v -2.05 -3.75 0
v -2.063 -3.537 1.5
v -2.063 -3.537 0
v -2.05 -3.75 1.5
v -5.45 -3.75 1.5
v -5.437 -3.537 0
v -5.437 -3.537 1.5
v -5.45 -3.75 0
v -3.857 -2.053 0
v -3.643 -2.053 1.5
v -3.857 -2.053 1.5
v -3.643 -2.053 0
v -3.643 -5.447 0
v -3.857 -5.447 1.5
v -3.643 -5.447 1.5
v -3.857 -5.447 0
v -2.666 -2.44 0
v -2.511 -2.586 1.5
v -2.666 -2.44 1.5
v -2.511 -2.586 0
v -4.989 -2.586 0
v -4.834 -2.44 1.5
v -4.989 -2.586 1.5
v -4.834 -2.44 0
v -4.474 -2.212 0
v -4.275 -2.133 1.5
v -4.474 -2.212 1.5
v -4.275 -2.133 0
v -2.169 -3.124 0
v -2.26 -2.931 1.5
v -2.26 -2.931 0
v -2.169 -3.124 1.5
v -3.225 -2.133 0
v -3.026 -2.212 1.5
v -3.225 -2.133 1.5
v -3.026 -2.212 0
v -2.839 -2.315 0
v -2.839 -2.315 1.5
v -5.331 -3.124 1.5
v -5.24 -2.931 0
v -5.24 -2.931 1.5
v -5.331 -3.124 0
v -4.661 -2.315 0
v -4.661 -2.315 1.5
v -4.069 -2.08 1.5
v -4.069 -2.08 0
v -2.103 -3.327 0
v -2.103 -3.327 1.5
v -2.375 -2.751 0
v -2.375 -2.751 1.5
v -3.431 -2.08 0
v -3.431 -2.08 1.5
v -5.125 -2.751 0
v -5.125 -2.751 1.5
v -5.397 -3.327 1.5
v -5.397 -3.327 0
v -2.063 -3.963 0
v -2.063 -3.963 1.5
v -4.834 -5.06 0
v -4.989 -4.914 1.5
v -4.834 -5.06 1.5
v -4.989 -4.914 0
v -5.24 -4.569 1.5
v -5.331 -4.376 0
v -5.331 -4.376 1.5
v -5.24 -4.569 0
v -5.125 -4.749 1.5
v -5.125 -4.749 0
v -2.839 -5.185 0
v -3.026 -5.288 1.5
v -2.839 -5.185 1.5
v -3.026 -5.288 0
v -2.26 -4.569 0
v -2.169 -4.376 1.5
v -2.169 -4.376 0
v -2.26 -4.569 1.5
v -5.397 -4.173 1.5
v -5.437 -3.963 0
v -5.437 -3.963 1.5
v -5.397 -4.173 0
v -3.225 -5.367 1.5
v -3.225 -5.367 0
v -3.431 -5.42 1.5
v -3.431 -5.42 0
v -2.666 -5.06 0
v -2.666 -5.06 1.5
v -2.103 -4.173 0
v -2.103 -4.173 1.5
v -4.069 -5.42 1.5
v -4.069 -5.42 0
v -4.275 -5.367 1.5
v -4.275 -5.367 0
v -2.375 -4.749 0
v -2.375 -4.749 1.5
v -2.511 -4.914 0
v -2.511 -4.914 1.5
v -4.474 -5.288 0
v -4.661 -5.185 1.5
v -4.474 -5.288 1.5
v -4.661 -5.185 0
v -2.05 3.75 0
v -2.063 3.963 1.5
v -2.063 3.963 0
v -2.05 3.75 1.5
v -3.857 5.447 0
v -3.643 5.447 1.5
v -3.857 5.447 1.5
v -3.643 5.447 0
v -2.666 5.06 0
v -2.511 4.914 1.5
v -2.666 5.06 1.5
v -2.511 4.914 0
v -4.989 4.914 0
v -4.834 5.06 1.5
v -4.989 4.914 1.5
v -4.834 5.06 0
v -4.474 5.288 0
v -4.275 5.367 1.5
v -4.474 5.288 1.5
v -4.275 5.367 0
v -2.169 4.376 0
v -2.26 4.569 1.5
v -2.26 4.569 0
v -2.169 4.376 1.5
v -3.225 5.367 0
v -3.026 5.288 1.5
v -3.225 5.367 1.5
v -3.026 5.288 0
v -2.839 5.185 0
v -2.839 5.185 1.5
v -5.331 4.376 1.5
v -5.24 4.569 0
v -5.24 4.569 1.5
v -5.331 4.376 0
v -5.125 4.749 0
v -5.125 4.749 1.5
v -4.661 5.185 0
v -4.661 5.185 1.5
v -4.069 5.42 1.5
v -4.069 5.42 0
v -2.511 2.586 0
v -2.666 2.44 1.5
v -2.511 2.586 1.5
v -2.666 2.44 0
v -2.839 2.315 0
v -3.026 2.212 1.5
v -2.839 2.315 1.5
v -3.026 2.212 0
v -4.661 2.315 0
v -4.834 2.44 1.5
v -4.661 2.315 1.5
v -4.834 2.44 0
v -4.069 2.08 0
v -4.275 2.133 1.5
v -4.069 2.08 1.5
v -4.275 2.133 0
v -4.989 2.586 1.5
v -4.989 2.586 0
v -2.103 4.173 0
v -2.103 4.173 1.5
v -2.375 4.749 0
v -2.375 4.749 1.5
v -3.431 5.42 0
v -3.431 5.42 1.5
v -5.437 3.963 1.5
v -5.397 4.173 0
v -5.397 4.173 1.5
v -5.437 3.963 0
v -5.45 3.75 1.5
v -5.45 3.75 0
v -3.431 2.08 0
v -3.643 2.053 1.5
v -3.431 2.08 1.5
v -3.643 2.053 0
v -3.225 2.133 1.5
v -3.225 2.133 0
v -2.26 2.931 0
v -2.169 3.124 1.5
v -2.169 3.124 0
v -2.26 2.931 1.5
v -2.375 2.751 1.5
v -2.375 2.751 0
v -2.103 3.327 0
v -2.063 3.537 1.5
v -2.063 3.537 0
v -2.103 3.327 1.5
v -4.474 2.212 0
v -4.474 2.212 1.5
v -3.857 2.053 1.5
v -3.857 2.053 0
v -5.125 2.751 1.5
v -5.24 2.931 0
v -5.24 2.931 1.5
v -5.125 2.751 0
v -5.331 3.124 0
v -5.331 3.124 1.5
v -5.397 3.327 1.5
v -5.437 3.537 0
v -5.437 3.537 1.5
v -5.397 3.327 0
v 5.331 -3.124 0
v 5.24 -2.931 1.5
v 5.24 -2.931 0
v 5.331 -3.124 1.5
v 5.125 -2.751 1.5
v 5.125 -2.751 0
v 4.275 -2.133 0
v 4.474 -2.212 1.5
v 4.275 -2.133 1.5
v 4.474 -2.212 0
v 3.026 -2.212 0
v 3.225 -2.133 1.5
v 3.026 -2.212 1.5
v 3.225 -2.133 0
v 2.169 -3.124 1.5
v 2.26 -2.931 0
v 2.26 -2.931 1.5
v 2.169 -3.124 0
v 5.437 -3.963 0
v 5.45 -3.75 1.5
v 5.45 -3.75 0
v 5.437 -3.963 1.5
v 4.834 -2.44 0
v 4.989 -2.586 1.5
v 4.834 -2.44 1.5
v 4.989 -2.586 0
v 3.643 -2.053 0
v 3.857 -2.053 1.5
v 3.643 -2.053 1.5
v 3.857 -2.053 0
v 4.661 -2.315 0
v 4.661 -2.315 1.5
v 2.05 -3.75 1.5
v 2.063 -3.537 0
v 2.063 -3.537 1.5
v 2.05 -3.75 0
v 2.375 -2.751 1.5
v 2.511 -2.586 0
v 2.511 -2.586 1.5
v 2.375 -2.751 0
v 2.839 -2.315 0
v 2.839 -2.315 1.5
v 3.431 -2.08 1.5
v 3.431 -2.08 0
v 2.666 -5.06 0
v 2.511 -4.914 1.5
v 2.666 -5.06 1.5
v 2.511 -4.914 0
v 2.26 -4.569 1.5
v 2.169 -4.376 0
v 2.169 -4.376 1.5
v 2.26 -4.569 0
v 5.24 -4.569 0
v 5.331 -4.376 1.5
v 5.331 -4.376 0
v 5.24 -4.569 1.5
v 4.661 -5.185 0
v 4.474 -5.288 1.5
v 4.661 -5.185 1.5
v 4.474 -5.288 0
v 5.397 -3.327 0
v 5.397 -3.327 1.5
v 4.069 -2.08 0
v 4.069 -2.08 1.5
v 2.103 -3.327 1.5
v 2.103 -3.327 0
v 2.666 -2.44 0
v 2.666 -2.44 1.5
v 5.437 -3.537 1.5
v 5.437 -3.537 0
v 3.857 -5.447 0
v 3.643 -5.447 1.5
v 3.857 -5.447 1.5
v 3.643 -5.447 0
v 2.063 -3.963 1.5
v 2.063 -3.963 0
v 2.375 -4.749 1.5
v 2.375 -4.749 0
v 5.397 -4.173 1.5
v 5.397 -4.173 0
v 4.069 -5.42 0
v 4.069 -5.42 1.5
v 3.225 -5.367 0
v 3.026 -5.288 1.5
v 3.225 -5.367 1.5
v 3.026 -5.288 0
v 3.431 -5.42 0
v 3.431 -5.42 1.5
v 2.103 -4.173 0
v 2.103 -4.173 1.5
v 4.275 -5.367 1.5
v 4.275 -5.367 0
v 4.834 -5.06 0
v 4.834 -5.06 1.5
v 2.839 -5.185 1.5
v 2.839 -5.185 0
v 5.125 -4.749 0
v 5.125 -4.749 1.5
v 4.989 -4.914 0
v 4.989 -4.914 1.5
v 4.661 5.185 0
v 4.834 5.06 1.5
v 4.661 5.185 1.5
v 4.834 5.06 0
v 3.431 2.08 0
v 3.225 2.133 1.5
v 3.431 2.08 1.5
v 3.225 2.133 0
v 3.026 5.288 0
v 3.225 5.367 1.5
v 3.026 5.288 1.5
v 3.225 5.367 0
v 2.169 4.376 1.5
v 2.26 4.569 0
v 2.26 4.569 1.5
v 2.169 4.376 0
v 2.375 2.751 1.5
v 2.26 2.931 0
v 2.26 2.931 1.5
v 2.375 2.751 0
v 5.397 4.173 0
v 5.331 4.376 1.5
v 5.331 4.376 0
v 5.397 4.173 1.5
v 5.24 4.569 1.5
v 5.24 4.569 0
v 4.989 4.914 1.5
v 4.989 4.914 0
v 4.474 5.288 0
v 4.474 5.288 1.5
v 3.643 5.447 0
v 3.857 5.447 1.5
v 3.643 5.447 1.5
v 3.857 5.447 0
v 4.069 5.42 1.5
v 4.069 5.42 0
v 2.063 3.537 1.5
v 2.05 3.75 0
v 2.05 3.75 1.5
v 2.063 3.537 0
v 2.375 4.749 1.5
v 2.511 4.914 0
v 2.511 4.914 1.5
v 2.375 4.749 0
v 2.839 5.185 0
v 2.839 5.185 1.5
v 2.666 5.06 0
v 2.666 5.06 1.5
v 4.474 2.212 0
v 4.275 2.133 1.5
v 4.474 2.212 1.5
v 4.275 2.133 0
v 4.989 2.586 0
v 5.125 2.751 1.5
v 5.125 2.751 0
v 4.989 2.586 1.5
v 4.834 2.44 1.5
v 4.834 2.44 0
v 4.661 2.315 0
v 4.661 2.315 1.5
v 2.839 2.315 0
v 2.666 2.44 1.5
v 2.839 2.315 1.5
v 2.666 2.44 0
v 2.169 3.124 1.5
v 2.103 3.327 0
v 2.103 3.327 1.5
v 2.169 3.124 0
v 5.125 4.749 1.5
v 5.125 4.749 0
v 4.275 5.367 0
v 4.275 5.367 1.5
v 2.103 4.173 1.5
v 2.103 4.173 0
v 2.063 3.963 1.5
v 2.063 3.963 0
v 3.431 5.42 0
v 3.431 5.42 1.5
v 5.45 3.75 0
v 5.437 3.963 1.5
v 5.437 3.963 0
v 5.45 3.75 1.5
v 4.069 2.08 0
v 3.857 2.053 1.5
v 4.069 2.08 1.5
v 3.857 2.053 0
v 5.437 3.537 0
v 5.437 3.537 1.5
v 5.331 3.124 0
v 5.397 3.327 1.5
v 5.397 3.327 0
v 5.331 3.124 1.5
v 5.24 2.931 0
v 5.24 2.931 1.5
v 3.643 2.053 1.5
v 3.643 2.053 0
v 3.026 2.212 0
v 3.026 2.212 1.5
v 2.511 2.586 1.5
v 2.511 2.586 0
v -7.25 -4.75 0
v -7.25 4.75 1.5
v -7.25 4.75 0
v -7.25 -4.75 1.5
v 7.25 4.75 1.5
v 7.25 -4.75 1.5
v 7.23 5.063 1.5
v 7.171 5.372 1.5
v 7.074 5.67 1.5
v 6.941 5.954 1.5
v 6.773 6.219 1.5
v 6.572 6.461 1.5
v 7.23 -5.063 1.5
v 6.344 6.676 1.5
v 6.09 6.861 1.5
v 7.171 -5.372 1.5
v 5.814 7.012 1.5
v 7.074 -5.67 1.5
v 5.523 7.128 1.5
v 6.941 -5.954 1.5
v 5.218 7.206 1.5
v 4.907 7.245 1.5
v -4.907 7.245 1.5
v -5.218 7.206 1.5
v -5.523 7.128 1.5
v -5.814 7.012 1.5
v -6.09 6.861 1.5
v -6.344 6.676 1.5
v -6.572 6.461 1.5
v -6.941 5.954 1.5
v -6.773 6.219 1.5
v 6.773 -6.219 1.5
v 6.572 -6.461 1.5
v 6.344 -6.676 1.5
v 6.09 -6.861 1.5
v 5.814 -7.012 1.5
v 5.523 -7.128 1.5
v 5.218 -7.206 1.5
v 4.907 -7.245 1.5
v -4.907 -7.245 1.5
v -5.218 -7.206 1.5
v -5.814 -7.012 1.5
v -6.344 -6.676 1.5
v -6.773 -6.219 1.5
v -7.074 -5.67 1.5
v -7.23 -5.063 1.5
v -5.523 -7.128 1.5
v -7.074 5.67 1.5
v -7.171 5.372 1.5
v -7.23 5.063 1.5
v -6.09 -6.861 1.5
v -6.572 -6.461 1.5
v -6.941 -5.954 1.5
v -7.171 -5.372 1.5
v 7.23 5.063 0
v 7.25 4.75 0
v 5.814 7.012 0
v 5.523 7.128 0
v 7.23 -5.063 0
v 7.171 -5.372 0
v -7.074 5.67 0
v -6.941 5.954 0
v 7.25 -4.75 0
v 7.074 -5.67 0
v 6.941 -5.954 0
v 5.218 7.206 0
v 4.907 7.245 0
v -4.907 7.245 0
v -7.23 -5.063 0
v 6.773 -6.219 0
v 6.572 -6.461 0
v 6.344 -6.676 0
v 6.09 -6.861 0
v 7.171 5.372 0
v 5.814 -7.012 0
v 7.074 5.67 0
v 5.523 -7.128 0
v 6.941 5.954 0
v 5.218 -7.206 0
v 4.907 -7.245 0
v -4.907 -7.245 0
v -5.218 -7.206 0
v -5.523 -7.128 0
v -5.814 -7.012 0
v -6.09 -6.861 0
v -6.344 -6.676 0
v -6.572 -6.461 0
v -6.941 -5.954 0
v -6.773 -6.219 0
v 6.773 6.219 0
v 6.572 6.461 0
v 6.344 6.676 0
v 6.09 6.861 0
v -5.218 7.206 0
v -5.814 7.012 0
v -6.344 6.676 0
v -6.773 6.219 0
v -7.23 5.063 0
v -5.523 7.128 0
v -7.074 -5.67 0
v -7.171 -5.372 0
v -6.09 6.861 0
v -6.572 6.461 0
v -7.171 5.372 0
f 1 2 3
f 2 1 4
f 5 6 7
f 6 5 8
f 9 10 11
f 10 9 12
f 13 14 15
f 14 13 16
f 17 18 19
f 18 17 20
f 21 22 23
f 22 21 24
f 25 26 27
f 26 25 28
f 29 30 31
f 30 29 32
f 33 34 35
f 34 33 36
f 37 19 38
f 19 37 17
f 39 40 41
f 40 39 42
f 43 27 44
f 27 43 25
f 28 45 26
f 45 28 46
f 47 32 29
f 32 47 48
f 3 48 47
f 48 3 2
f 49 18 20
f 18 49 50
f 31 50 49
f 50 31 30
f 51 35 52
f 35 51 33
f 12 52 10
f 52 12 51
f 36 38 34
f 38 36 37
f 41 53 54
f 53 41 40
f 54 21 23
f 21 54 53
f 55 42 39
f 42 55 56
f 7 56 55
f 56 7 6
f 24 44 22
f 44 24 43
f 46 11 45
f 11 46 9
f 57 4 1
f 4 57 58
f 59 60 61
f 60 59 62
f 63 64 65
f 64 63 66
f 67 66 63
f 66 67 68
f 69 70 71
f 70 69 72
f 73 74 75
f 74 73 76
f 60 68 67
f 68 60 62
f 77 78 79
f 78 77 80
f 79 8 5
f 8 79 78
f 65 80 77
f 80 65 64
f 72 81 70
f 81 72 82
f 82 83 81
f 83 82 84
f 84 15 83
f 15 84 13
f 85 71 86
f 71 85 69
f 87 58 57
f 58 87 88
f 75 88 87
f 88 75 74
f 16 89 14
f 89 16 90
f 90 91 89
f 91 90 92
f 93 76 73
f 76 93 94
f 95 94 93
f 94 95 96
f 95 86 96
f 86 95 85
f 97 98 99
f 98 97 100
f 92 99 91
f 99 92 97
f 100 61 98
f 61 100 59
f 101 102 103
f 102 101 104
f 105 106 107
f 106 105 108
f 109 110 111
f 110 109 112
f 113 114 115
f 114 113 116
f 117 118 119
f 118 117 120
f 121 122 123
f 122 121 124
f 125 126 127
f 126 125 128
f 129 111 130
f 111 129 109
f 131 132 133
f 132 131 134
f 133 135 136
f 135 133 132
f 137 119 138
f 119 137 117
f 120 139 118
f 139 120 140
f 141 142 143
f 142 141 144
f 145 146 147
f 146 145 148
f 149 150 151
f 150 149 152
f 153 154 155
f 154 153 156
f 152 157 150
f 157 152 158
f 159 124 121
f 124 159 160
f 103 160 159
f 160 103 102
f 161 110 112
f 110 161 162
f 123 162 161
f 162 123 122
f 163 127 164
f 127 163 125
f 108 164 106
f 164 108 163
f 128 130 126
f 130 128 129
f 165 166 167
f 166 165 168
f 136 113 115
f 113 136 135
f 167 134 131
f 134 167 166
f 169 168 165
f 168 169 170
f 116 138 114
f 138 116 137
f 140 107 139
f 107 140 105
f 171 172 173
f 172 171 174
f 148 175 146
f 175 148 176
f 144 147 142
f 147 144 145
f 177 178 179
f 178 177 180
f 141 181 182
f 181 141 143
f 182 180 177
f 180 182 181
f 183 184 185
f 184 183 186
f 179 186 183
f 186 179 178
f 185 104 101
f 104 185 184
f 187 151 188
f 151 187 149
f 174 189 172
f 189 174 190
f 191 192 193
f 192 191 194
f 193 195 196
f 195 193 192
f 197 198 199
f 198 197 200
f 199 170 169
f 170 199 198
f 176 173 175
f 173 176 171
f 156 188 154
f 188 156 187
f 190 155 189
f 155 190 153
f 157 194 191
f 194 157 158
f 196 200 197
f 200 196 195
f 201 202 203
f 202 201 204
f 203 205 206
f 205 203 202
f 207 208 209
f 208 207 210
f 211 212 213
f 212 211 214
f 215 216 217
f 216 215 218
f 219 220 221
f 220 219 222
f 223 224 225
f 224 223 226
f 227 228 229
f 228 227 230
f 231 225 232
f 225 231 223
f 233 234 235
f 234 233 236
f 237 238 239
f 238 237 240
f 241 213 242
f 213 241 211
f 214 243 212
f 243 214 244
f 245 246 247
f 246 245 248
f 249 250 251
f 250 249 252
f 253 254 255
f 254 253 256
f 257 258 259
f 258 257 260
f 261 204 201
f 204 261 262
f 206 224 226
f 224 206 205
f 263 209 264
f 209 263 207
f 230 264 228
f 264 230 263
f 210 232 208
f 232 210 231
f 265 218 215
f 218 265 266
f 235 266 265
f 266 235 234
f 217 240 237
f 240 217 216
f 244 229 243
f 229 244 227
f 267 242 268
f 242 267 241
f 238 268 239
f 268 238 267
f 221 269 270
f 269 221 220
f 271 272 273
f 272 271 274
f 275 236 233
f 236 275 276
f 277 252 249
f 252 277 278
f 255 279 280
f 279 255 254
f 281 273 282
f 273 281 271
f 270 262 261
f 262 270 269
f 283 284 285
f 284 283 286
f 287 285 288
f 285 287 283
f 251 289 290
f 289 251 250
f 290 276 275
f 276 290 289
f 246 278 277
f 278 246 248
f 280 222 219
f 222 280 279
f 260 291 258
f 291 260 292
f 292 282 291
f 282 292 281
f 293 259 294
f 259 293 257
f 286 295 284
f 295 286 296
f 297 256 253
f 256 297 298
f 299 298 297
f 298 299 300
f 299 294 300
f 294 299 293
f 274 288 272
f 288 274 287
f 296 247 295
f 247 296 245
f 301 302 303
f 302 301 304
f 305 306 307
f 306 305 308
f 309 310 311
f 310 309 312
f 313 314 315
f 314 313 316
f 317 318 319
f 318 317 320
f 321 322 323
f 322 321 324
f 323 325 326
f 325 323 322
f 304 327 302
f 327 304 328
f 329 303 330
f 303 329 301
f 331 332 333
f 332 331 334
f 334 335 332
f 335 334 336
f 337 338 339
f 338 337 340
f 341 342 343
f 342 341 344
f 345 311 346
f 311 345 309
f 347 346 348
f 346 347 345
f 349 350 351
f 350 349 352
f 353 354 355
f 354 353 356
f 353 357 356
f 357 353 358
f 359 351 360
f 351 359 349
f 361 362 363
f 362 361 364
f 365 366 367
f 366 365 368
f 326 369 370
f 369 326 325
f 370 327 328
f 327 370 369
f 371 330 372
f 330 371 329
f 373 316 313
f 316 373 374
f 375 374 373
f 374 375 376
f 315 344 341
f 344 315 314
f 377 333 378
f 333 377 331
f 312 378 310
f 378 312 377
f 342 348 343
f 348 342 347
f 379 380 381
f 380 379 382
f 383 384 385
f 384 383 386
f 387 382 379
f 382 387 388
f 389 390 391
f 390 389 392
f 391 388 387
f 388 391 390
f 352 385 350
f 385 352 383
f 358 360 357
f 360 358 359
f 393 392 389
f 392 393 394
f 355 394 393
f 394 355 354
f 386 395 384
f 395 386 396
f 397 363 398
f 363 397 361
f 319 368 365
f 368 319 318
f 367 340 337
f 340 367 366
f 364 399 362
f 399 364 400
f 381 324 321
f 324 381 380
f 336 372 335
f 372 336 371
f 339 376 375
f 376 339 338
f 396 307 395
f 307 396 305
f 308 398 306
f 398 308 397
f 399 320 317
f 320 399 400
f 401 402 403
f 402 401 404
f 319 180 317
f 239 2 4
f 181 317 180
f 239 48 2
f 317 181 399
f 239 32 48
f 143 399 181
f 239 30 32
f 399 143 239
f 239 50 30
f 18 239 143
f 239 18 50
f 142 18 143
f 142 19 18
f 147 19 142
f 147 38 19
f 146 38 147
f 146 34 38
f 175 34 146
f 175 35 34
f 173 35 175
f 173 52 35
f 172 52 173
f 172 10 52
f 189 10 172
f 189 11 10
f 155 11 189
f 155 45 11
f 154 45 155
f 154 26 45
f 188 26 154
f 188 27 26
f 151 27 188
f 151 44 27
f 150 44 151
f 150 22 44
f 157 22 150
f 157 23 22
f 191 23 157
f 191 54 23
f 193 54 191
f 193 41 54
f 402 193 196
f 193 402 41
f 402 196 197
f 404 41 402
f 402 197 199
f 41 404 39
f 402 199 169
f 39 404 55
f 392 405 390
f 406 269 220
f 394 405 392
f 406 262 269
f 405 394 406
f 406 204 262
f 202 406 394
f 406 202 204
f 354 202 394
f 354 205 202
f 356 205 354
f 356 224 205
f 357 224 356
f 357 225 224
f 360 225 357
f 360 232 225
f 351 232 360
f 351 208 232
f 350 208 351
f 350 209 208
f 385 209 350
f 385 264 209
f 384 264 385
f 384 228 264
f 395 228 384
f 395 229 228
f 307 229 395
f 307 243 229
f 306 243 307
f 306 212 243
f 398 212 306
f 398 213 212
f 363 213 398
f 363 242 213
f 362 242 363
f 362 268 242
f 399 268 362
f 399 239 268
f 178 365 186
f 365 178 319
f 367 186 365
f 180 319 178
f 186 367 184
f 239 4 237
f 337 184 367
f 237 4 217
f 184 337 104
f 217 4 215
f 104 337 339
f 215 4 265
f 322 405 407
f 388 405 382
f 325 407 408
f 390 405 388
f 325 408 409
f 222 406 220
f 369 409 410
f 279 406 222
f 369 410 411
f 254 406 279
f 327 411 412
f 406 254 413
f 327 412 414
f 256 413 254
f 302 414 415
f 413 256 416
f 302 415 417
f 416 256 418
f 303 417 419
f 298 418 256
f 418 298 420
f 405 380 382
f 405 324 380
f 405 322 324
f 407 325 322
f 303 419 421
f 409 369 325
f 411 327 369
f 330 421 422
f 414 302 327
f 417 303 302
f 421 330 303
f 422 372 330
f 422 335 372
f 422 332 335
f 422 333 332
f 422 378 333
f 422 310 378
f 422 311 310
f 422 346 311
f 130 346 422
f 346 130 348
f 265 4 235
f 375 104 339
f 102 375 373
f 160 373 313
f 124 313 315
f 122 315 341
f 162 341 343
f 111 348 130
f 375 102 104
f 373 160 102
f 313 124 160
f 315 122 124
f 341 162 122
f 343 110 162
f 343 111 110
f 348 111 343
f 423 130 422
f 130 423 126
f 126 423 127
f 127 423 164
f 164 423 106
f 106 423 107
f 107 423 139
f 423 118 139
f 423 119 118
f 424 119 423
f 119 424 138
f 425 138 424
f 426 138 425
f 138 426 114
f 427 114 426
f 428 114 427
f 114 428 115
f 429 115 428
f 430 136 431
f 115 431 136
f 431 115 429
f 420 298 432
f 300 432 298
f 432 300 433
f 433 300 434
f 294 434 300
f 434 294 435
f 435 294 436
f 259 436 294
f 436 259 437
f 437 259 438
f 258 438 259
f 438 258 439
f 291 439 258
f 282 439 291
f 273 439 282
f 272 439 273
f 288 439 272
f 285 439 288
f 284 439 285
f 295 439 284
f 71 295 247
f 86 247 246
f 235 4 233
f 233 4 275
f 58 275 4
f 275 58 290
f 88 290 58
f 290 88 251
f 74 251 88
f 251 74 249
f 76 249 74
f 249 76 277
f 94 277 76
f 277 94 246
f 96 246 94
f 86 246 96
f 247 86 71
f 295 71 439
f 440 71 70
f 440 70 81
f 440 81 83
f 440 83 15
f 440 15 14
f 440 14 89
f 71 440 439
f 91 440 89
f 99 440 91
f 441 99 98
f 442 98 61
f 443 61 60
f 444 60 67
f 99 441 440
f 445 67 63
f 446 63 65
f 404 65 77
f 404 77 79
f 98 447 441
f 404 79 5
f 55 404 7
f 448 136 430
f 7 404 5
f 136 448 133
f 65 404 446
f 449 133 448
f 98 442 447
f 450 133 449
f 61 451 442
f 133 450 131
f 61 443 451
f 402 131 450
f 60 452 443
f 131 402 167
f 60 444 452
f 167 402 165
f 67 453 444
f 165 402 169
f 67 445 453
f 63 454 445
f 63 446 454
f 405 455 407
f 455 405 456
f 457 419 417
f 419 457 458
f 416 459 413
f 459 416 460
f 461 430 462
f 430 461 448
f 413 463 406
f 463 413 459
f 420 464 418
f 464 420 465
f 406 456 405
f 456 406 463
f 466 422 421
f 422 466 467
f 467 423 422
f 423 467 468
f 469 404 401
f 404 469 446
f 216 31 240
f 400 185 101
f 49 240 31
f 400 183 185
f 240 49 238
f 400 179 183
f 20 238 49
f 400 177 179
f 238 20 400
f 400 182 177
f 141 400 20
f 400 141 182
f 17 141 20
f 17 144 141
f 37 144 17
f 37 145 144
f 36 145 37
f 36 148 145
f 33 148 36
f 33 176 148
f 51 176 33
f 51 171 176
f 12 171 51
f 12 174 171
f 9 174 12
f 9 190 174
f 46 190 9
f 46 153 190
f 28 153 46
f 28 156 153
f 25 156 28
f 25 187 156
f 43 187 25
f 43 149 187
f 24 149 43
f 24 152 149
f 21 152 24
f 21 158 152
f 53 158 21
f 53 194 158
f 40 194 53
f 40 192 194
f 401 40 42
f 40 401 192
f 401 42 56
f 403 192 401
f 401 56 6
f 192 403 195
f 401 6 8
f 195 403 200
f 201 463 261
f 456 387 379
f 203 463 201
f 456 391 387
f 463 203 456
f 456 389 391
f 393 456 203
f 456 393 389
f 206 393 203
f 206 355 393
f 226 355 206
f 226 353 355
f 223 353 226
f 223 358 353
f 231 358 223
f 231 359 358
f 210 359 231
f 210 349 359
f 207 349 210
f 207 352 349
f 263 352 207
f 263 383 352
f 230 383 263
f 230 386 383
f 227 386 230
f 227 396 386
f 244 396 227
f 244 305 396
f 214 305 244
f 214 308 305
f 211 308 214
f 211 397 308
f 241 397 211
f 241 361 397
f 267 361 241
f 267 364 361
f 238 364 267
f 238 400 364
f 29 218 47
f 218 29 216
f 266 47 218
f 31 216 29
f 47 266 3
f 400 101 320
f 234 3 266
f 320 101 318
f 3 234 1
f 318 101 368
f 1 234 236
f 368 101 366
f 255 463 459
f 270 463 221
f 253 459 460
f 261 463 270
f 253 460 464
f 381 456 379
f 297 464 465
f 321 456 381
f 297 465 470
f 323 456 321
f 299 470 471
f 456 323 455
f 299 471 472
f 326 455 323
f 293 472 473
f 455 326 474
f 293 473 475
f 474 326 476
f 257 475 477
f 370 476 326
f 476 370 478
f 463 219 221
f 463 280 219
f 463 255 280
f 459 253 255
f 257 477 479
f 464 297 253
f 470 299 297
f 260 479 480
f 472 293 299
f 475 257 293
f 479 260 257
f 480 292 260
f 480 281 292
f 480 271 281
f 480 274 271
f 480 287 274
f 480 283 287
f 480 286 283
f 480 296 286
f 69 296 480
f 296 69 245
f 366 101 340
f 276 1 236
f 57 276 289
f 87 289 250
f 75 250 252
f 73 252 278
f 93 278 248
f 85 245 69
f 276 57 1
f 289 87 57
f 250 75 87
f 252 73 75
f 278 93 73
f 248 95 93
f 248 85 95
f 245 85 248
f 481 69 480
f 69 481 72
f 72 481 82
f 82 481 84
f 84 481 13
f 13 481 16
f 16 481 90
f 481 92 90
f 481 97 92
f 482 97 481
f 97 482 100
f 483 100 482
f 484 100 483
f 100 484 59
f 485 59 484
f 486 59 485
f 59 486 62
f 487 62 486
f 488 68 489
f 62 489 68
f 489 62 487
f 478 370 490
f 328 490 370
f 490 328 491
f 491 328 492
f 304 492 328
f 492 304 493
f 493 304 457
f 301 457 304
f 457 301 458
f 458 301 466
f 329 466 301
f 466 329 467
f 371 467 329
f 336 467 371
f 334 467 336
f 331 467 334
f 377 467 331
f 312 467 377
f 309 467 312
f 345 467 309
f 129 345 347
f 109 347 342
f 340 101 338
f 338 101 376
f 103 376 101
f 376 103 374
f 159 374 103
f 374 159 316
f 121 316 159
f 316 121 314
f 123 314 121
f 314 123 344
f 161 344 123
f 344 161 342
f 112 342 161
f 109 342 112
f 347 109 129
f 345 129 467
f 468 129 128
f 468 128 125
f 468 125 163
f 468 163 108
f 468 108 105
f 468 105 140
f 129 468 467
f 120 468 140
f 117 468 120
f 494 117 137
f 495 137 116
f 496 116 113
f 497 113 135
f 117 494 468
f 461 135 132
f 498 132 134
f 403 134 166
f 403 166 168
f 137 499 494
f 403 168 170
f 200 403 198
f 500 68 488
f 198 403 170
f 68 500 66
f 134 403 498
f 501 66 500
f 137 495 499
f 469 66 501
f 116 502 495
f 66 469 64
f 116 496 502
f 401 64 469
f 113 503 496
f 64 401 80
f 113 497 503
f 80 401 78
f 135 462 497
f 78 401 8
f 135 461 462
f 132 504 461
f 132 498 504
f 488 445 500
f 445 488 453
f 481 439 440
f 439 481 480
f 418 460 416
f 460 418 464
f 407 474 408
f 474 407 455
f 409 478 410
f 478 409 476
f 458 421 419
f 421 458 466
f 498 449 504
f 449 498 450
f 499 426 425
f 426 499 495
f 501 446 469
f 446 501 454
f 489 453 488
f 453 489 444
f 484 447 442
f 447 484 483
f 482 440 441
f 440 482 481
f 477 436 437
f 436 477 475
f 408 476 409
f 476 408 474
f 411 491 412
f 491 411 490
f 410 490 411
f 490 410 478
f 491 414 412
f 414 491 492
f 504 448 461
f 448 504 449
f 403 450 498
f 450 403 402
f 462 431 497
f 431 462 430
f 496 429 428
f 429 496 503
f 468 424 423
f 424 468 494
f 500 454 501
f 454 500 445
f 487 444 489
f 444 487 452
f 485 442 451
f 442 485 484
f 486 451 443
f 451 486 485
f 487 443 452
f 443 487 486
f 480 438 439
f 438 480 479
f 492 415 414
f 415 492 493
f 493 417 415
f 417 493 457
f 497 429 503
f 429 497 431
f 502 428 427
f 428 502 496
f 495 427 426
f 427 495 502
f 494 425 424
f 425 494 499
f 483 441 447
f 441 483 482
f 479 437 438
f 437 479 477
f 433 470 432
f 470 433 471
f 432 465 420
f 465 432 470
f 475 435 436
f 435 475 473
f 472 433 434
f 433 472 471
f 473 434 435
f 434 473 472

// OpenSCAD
$fn = 50;


difference() {
	union() {
		translate(v = [0, 0, 0]) {
			rotate(a = [0, 0, 0]) {
				hull() {
					translate(v = [-4.7500000000, 4.7500000000, 0]) {
						rotate(a = [0, 0, 0]) {
							translate(v = [0, 0, 0]) {
								rotate(a = [0, 0, 0]) {
									cylinder(h = 1.5000000000, r = 2.5000000000);
								}
							}
						}
					}
					translate(v = [4.7500000000, 4.7500000000, 0]) {
						rotate(a = [0, 0, 0]) {
							translate(v = [0, 0, 0]) {
								rotate(a = [0, 0, 0]) {
									cylinder(h = 1.5000000000, r = 2.5000000000);
								}
							}
						}
					}
					translate(v = [-4.7500000000, -4.7500000000, 0]) {
						rotate(a = [0, 0, 0]) {
							translate(v = [0, 0, 0]) {
								rotate(a = [0, 0, 0]) {
									cylinder(h = 1.5000000000, r = 2.5000000000);
								}
							}
						}
					}
					translate(v = [4.7500000000, -4.7500000000, 0]) {
						rotate(a = [0, 0, 0]) {
							translate(v = [0, 0, 0]) {
								rotate(a = [0, 0, 0]) {
									cylinder(h = 1.5000000000, r = 2.5000000000);
								}
							}
						}
					}
				}
			}
		}
	}
	union() {
		translate(v = [-3.7500000000, -3.7500000000, 0]) {
			rotate(a = [0, 0, 0]) {
				translate(v = [0, 0, -50]) {
					rotate(a = [0, 0, 0]) {
						cylinder(h = 100, r = 1.7000000000);
					}
				}
			}
		}
		translate(v = [-3.7500000000, 3.7500000000, 0]) {
			rotate(a = [0, 0, 0]) {
				translate(v = [0, 0, -50]) {
					rotate(a = [0, 0, 0]) {
						cylinder(h = 100, r = 1.7000000000);
					}
				}
			}
		}
		translate(v = [3.7500000000, -3.7500000000, 0]) {
			rotate(a = [0, 0, 0]) {
				translate(v = [0, 0, -50]) {
					rotate(a = [0, 0, 0]) {
						cylinder(h = 100, r = 1.7000000000);
					}
				}
			}
		}
		translate(v = [3.7500000000, 3.7500000000, 0]) {
			rotate(a = [0, 0, 0]) {
				translate(v = [0, 0, -50]) {
					rotate(a = [0, 0, 0]) {
						cylinder(h = 100, r = 1.7000000000);
					}
				}
			}
		}
	}
}
